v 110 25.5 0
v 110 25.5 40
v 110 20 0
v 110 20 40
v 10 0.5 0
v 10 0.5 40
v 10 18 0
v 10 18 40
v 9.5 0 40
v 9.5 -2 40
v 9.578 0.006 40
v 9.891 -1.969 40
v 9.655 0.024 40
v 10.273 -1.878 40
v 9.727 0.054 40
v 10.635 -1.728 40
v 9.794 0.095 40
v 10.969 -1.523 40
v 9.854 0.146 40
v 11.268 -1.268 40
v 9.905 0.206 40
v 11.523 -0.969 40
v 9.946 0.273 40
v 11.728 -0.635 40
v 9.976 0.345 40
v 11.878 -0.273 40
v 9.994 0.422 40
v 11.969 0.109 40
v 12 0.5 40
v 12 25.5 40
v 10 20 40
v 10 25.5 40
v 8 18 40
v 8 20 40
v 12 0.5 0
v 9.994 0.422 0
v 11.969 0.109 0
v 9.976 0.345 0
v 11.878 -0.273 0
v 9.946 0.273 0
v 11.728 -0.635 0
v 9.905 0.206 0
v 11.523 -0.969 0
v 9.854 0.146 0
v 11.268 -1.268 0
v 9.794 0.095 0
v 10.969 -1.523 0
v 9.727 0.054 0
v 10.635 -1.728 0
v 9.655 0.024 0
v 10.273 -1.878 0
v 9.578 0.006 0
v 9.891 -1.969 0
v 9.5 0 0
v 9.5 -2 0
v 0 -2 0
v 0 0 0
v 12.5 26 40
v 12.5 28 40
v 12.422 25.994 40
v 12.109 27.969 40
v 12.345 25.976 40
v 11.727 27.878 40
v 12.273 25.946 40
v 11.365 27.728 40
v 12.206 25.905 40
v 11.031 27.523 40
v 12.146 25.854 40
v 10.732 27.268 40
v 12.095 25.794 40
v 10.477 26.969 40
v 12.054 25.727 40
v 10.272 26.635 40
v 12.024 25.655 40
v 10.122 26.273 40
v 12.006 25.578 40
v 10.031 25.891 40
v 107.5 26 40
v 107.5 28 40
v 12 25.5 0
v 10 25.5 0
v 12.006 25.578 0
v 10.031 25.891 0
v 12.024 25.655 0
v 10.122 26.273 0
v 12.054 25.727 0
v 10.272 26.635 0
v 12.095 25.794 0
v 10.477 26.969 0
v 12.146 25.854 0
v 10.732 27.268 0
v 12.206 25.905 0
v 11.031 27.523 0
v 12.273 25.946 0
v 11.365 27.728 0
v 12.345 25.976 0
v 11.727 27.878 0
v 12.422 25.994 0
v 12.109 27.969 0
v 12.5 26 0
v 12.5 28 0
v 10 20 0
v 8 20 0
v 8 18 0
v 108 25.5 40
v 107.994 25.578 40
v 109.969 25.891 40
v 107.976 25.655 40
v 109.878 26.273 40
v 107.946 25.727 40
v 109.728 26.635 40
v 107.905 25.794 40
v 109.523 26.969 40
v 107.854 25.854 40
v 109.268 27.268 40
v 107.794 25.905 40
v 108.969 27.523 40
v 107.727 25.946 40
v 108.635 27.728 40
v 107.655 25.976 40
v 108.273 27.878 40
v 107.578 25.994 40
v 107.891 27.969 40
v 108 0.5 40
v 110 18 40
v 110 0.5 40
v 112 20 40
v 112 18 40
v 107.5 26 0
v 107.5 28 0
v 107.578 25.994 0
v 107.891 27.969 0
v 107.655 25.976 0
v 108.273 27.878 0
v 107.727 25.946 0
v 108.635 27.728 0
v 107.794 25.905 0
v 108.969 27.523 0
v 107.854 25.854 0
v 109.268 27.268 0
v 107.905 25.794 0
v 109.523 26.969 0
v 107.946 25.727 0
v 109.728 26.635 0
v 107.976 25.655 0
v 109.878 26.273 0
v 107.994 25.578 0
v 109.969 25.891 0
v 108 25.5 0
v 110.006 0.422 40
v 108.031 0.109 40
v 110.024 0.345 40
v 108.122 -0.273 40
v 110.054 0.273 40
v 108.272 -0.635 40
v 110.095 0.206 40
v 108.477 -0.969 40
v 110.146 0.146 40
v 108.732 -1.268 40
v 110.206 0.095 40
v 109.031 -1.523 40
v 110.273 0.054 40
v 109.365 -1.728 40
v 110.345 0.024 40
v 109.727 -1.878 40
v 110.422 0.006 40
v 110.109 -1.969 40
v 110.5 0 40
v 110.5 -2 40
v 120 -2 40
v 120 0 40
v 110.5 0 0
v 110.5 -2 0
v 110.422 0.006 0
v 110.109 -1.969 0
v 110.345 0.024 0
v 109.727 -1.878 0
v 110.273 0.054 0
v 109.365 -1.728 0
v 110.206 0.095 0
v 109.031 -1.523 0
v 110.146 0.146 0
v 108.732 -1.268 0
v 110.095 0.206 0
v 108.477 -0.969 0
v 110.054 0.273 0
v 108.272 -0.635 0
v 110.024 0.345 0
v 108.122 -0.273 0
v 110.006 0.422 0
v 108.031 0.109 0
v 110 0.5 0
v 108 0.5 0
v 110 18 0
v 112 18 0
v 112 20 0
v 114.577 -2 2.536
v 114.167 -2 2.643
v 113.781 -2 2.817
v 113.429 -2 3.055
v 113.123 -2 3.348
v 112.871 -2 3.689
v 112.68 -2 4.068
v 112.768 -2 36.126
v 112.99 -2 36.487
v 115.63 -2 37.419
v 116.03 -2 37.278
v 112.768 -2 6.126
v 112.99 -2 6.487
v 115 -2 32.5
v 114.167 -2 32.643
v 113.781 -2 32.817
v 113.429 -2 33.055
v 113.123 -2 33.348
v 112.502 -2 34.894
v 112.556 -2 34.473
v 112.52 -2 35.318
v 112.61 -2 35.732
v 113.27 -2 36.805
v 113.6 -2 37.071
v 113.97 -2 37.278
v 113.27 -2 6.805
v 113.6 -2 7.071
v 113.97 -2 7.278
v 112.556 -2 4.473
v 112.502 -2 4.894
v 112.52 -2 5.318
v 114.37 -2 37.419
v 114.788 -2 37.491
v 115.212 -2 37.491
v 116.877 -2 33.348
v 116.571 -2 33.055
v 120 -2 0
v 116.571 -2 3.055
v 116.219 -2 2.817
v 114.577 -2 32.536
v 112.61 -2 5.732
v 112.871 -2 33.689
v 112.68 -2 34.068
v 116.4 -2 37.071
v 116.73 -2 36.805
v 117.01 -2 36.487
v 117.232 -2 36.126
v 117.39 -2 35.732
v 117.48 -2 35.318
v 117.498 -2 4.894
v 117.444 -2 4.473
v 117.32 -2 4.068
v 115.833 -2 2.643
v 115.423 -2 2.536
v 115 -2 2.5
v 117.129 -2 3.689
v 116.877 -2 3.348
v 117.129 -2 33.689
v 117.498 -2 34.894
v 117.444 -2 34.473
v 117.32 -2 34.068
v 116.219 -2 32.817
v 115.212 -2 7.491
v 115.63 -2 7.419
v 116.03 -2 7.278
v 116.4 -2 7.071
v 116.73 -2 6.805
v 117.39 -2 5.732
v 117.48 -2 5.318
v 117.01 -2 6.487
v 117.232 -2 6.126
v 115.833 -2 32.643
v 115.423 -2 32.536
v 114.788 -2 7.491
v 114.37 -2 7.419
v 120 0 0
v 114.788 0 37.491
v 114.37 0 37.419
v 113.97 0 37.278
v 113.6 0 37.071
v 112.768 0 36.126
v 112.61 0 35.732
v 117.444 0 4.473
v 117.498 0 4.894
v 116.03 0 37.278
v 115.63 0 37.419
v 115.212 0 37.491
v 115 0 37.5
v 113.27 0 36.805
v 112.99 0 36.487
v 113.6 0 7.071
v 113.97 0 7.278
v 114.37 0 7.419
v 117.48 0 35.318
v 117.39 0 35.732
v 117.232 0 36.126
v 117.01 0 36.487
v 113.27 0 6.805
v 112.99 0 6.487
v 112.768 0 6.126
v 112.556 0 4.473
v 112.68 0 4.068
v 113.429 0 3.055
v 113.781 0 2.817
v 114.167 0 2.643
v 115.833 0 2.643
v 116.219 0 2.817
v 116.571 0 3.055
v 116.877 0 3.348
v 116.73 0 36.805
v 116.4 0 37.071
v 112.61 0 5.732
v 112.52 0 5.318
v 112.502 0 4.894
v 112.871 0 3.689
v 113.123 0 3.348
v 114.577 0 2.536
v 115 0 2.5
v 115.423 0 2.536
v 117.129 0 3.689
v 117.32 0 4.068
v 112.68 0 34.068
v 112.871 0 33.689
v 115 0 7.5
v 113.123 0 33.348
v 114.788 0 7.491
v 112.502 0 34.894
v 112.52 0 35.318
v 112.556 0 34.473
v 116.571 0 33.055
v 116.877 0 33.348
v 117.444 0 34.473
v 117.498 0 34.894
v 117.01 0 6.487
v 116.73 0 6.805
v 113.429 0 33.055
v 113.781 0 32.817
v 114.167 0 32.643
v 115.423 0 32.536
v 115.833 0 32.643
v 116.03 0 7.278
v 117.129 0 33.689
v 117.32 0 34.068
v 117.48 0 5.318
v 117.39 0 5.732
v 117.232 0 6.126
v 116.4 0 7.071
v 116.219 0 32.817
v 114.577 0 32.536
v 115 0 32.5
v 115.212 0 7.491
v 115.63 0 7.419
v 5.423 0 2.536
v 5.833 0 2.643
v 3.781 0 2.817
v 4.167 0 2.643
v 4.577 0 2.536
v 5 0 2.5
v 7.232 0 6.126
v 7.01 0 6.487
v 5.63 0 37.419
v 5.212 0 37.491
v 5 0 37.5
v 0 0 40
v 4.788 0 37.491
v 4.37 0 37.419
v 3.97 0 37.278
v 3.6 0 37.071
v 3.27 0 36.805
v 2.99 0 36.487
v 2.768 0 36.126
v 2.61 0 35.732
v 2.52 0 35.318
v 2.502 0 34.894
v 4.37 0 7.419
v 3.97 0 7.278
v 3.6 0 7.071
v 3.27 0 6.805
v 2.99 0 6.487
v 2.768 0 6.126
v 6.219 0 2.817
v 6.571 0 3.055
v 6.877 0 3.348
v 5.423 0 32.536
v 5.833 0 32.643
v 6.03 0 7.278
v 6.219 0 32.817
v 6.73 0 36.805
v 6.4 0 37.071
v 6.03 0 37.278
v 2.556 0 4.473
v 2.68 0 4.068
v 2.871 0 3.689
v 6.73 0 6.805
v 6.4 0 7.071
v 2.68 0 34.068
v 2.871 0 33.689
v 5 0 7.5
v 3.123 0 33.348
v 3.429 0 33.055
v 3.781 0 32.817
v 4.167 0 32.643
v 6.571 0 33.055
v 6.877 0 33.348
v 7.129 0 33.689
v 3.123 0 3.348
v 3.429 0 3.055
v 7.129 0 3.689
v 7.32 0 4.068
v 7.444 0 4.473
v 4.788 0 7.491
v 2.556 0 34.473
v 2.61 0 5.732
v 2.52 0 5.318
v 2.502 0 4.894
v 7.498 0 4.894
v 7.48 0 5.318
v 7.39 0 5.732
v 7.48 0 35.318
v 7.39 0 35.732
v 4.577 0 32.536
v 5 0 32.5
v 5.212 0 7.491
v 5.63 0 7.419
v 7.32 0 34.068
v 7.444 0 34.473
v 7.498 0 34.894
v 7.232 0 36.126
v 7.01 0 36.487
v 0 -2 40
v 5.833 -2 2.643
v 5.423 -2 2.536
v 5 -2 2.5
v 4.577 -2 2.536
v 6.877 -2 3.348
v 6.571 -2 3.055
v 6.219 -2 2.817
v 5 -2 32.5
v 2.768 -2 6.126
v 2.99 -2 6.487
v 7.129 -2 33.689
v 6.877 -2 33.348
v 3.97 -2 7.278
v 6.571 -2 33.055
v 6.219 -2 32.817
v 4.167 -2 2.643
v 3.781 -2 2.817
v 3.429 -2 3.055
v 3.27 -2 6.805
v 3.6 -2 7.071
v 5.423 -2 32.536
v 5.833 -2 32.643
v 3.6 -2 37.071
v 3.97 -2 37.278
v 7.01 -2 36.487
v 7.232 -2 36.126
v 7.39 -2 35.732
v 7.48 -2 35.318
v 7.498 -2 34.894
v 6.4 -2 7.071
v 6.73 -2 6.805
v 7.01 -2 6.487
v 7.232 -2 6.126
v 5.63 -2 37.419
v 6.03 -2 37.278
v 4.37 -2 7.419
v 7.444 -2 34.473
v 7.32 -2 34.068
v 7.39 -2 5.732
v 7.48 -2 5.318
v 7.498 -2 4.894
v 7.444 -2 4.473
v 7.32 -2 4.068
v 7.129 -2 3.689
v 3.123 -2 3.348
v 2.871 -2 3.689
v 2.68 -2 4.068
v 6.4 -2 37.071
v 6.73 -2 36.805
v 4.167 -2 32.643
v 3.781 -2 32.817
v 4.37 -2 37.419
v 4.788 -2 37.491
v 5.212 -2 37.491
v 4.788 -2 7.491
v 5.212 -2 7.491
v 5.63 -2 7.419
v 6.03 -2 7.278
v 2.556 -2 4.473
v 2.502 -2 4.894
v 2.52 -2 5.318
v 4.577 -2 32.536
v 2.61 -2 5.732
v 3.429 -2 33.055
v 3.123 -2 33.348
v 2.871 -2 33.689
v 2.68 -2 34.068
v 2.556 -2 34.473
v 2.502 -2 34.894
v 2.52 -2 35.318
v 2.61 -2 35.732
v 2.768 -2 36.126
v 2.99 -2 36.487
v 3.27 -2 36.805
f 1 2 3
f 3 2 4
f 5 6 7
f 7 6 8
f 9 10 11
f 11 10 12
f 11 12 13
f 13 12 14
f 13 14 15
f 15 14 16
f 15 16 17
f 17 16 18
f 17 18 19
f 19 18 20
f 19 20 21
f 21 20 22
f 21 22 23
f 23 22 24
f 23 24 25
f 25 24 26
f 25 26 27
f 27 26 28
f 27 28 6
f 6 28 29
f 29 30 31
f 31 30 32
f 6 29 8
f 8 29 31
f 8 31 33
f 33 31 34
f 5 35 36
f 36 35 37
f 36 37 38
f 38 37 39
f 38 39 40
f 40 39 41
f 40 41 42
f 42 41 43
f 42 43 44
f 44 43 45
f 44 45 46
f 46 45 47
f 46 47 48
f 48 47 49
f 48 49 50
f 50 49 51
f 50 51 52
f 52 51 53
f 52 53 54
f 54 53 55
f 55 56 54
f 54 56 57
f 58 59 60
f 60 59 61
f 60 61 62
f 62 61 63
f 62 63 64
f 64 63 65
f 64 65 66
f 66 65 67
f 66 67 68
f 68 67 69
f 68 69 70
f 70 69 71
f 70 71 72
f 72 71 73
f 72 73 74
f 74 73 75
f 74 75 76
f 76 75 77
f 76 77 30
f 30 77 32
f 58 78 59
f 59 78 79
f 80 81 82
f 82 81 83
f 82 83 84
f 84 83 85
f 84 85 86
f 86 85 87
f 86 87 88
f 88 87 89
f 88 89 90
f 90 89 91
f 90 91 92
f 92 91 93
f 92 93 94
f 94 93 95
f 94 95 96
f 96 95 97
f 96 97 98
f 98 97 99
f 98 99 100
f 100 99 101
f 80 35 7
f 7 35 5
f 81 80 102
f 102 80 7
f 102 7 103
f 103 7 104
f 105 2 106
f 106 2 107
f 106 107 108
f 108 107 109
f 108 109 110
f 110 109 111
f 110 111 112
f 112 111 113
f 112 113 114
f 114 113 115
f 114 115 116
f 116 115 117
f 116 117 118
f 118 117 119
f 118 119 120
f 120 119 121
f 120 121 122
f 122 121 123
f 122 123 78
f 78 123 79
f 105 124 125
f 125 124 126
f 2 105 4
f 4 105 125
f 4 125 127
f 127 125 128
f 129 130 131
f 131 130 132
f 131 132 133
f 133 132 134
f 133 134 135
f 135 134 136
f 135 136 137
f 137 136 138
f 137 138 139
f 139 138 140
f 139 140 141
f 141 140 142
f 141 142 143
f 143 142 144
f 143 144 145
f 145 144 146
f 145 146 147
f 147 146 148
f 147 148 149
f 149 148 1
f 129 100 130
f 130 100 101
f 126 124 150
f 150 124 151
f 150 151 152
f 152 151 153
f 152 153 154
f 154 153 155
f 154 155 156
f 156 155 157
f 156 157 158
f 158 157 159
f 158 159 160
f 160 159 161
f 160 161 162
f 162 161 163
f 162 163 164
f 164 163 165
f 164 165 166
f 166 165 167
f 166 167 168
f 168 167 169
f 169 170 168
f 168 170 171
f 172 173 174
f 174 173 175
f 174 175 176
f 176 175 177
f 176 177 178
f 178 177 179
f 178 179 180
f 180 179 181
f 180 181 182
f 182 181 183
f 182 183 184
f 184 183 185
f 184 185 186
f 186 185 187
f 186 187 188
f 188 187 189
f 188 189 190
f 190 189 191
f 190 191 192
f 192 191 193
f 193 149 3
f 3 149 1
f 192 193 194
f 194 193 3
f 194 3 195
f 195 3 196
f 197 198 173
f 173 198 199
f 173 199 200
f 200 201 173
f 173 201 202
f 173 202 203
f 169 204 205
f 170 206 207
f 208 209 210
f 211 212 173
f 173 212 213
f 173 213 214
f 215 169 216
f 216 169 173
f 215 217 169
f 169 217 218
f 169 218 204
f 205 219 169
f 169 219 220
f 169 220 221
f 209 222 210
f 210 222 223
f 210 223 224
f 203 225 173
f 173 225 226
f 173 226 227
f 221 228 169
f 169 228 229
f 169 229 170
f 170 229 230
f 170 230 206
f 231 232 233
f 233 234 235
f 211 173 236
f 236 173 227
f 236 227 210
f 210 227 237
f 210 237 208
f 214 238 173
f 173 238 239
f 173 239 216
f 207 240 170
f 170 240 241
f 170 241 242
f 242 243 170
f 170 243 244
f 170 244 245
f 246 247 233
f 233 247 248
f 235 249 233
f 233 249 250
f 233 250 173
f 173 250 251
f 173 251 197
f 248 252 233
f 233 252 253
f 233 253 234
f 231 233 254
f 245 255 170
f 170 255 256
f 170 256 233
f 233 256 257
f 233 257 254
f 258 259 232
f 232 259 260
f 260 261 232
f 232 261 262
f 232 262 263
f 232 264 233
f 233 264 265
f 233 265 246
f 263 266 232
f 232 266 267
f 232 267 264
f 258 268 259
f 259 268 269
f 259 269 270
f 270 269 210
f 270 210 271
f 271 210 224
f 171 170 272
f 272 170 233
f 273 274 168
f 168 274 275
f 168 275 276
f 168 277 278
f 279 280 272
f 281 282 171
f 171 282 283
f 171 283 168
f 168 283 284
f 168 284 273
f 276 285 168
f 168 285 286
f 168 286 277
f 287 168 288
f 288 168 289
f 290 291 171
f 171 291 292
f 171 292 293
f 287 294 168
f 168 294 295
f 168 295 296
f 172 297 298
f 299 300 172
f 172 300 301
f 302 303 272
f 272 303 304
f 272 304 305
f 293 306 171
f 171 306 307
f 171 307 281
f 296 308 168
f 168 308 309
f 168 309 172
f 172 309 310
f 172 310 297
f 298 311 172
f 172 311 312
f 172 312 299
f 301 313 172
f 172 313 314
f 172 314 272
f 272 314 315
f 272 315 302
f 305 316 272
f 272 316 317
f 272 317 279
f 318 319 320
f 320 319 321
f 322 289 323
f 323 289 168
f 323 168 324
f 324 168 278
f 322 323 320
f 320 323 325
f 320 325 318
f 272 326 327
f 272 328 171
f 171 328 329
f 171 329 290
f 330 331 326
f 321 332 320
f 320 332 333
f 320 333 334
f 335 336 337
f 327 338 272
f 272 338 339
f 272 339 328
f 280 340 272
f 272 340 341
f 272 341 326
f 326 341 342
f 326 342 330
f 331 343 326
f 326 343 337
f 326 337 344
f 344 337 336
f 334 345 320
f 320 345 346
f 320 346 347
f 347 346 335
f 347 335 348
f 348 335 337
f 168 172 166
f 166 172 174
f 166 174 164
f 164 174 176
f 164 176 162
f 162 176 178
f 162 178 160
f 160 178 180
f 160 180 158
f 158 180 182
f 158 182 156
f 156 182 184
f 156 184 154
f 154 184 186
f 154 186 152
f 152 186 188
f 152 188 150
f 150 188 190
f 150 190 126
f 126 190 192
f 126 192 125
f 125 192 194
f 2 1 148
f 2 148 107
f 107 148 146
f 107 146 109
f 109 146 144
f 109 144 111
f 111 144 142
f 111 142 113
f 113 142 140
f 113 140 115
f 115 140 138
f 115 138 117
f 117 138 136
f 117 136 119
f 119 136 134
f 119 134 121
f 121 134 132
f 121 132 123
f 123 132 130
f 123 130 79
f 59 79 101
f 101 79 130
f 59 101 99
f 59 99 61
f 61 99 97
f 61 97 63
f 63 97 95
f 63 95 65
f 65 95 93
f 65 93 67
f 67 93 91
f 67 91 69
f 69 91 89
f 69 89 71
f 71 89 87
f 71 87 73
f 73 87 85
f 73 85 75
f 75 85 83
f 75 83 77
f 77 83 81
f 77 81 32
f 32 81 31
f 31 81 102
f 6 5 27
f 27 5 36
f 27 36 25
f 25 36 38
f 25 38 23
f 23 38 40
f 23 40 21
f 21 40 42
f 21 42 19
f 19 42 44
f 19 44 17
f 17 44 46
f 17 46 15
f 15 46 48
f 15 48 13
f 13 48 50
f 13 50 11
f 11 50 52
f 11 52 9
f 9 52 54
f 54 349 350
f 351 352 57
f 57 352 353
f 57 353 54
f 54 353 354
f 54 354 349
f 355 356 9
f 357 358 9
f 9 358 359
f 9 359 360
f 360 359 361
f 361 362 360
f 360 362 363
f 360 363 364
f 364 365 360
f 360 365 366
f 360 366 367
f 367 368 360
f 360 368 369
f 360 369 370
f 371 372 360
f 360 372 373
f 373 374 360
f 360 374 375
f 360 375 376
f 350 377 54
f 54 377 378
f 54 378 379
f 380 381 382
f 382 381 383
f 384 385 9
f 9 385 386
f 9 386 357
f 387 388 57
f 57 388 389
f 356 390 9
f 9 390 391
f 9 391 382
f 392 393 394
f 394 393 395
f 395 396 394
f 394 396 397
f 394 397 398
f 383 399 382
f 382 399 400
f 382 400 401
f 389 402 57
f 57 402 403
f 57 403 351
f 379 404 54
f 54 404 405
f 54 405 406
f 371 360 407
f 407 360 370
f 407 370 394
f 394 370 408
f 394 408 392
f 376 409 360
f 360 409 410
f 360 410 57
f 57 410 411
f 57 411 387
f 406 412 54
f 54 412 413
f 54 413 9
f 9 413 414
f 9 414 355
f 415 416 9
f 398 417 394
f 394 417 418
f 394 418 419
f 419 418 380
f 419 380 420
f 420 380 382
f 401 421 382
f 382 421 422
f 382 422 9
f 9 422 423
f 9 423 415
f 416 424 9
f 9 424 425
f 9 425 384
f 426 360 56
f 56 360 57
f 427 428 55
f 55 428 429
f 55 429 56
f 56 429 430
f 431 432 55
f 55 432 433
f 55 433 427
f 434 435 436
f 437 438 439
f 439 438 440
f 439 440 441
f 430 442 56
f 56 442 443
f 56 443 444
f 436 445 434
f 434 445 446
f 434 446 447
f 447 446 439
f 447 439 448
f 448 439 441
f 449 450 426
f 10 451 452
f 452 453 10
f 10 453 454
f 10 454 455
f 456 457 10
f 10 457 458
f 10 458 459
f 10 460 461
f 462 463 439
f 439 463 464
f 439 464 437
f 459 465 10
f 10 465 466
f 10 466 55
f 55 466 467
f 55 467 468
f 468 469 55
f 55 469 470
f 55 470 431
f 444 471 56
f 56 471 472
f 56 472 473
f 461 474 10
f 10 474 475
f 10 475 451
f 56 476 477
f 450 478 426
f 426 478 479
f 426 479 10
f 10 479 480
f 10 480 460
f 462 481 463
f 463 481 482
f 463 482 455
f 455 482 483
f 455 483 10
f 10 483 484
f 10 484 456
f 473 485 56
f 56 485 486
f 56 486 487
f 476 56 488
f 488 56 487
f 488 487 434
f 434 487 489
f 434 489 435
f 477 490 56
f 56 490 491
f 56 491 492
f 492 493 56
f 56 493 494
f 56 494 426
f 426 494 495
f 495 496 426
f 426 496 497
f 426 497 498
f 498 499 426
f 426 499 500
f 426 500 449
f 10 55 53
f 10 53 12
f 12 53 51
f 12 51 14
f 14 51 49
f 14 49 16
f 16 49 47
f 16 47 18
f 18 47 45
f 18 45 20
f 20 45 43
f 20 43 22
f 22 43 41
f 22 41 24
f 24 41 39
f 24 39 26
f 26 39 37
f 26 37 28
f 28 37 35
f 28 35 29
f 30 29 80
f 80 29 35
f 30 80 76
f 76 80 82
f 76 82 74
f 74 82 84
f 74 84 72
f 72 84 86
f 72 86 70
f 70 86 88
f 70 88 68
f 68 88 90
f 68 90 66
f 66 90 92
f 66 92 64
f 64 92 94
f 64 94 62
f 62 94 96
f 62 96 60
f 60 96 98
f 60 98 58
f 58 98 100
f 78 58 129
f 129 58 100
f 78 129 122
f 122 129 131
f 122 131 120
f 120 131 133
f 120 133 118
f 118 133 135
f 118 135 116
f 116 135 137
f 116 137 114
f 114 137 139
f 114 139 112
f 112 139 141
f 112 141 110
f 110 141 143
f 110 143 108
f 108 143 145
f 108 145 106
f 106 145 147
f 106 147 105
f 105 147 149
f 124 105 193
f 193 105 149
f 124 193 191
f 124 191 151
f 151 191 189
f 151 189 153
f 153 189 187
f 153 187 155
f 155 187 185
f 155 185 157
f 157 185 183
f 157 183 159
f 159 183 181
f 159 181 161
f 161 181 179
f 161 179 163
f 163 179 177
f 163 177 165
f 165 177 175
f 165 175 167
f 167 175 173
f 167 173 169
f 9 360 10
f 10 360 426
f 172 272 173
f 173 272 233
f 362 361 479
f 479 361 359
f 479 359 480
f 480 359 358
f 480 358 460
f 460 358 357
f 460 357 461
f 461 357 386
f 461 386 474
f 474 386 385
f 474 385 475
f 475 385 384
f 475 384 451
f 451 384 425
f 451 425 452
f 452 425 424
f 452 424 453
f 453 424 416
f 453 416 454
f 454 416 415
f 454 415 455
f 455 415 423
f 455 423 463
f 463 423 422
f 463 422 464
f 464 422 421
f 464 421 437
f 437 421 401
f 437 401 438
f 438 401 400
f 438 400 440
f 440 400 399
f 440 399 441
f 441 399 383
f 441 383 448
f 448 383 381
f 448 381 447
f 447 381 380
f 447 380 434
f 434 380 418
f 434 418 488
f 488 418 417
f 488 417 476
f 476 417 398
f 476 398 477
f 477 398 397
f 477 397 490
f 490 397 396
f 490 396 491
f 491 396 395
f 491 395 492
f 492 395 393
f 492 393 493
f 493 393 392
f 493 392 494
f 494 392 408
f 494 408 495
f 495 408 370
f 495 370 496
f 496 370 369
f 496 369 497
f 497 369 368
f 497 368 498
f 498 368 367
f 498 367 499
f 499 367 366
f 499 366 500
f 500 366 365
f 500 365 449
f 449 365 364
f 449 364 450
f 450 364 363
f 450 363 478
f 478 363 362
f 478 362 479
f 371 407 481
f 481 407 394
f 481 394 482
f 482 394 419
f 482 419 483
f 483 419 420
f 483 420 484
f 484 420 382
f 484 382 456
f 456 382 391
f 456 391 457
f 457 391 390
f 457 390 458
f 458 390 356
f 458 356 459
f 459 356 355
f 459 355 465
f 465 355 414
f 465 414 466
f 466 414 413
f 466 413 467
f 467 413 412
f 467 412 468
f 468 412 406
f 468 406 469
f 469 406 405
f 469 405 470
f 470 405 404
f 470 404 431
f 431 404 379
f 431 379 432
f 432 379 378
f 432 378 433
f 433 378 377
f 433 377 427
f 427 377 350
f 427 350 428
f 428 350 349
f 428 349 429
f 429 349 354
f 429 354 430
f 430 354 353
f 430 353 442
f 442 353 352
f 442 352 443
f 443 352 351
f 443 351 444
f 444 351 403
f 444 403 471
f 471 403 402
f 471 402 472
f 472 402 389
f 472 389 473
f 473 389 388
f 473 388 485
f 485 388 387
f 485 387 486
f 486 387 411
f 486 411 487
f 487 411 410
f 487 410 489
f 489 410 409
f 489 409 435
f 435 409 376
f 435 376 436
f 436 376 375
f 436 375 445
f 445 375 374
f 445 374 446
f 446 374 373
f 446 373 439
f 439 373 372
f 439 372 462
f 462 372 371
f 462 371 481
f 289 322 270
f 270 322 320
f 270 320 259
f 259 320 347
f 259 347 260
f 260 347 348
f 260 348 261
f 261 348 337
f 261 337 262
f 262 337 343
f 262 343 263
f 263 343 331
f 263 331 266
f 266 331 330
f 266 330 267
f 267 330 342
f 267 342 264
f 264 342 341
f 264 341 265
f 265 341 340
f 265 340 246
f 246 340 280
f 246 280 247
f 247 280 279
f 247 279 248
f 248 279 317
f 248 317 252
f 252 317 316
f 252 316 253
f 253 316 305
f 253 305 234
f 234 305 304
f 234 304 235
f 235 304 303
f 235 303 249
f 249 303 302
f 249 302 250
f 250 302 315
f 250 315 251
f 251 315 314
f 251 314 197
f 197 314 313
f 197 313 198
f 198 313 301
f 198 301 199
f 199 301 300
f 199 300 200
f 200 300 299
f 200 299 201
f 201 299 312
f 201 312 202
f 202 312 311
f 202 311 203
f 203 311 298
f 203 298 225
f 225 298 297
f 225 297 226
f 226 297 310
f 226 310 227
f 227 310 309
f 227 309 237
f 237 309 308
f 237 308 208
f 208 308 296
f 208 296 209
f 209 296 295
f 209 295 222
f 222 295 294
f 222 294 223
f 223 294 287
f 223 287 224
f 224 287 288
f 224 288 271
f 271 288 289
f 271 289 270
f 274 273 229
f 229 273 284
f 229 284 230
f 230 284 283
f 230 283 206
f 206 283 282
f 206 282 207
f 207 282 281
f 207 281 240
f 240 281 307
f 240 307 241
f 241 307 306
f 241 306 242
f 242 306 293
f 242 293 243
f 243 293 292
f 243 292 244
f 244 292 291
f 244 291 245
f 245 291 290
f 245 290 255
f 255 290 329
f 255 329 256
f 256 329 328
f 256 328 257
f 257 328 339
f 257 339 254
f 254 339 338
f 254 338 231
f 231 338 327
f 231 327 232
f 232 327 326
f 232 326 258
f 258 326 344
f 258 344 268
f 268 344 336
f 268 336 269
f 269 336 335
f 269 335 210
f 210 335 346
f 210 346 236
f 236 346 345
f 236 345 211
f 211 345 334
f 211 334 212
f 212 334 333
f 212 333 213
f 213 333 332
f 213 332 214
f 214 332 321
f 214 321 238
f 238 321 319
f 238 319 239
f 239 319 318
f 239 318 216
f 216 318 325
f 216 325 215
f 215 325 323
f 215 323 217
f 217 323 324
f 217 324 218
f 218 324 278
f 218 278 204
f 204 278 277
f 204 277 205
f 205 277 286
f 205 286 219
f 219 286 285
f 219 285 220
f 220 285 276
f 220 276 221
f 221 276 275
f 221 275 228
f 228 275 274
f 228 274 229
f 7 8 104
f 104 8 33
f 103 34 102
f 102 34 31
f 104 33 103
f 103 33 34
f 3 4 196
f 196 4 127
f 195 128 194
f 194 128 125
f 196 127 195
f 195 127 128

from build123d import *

# Parameters (mm, degrees)
BASE_FLANGE1_DEPTH  = 40
CUT_EXTRUDE1_REACH  = 132
SKETCH6_R           = 2.5
SKETCH7_W           = 2
SKETCH7_H           = 2
BOSS_EXTRUDE1_DEPTH = 40


# Sheet-metal steps are written as plain solids
with BuildPart() as part:
    # Sketch1 → Base-Flange1 (new body)
    with BuildSketch(Plane.XY):
        with BuildLine():
            Line((0, 0), (9.5, 0))
            ThreePointArc((9.5, 0), (9.853553391, 0.146446609), (10, 0.5))
            Line((10, 0.5), (10, 25.5))
            ThreePointArc((10, 25.5), (10.732233047, 27.267766953), (12.5, 28))
            Line((12.5, 28), (107.5, 28))
            ThreePointArc((107.5, 28), (109.267766953, 27.267766953), (110, 25.5))
            Line((110, 25.5), (110, 0.5))
            ThreePointArc((110, 0.5), (110.146446609, 0.146446609), (110.5, 0))
            Line((110.5, 0), (120, 0))
            Line((120, 0), (120, -2))
            Line((120, -2), (110.5, -2))
            ThreePointArc((110.5, -2), (108.732233047, -1.267766953), (108, 0.5))
            Line((108, 0.5), (108, 25.5))
            ThreePointArc((108, 25.5), (107.853553391, 25.853553391), (107.5, 26))
            Line((107.5, 26), (12.5, 26))
            ThreePointArc((12.5, 26), (12.146446609, 25.853553391), (12, 25.5))
            Line((12, 25.5), (12, 0.5))
            ThreePointArc((12, 0.5), (11.267766953, -1.267766953), (9.5, -2))
            Line((9.5, -2), (0, -2))
            Line((0, -2), (0, 0))
        make_face()
    extrude(amount=BASE_FLANGE1_DEPTH)

    # Sketch6 → Cut-Extrude1 (cut, up to next)
    with BuildSketch(Plane.XZ.offset(2), mode=Mode.PRIVATE) as cut_extrude1_sk1:
        with Locations(Location((5, 35, 0), (0, 0, 270))):
            Circle(SKETCH6_R)
    cut_extrude1_tool1 = extrude(cut_extrude1_sk1.sketch, amount=-CUT_EXTRUDE1_REACH, mode=Mode.PRIVATE) & part.part
    # Sketch6 → Cut-Extrude1 (cut, up to next)
    with BuildSketch(Plane.XZ.offset(2), mode=Mode.PRIVATE) as cut_extrude1_sk2:
        with Locations(Location((5, 5, 0), (0, 0, 270))):
            Circle(SKETCH6_R)
    cut_extrude1_tool2 = extrude(cut_extrude1_sk2.sketch, amount=-CUT_EXTRUDE1_REACH, mode=Mode.PRIVATE) & part.part
    # Sketch6 → Cut-Extrude1 (cut, up to next)
    with BuildSketch(Plane.XZ.offset(2), mode=Mode.PRIVATE) as cut_extrude1_sk3:
        with Locations(Location((115, 5, 0), (0, 0, 270))):
            Circle(SKETCH6_R)
    cut_extrude1_tool3 = extrude(cut_extrude1_sk3.sketch, amount=-CUT_EXTRUDE1_REACH, mode=Mode.PRIVATE) & part.part
    # Sketch6 → Cut-Extrude1 (cut, up to next)
    with BuildSketch(Plane.XZ.offset(2), mode=Mode.PRIVATE) as cut_extrude1_sk4:
        with Locations(Location((115, 35, 0), (0, 0, 270))):
            Circle(SKETCH6_R)
    cut_extrude1_tool4 = extrude(cut_extrude1_sk4.sketch, amount=-CUT_EXTRUDE1_REACH, mode=Mode.PRIVATE) & part.part
    add(cut_extrude1_tool1.solids().sort_by_distance((5, -2, 35))[0], mode=Mode.SUBTRACT)
    add(cut_extrude1_tool2.solids().sort_by_distance((5, -2, 5))[0], mode=Mode.SUBTRACT)
    add(cut_extrude1_tool3.solids().sort_by_distance((115, -2, 5))[0], mode=Mode.SUBTRACT)
    add(cut_extrude1_tool4.solids().sort_by_distance((115, -2, 35))[0], mode=Mode.SUBTRACT)

    # Sketch7 → Boss-Extrude1 (add)
    with BuildSketch(Plane.XY.offset(40)):
        with Locations((9, 19)):
            Rectangle(SKETCH7_W, SKETCH7_H)
        with Locations((111, 19)):
            Rectangle(SKETCH7_W, SKETCH7_H)
    extrude(amount=-BOSS_EXTRUDE1_DEPTH)


solid = part.part
